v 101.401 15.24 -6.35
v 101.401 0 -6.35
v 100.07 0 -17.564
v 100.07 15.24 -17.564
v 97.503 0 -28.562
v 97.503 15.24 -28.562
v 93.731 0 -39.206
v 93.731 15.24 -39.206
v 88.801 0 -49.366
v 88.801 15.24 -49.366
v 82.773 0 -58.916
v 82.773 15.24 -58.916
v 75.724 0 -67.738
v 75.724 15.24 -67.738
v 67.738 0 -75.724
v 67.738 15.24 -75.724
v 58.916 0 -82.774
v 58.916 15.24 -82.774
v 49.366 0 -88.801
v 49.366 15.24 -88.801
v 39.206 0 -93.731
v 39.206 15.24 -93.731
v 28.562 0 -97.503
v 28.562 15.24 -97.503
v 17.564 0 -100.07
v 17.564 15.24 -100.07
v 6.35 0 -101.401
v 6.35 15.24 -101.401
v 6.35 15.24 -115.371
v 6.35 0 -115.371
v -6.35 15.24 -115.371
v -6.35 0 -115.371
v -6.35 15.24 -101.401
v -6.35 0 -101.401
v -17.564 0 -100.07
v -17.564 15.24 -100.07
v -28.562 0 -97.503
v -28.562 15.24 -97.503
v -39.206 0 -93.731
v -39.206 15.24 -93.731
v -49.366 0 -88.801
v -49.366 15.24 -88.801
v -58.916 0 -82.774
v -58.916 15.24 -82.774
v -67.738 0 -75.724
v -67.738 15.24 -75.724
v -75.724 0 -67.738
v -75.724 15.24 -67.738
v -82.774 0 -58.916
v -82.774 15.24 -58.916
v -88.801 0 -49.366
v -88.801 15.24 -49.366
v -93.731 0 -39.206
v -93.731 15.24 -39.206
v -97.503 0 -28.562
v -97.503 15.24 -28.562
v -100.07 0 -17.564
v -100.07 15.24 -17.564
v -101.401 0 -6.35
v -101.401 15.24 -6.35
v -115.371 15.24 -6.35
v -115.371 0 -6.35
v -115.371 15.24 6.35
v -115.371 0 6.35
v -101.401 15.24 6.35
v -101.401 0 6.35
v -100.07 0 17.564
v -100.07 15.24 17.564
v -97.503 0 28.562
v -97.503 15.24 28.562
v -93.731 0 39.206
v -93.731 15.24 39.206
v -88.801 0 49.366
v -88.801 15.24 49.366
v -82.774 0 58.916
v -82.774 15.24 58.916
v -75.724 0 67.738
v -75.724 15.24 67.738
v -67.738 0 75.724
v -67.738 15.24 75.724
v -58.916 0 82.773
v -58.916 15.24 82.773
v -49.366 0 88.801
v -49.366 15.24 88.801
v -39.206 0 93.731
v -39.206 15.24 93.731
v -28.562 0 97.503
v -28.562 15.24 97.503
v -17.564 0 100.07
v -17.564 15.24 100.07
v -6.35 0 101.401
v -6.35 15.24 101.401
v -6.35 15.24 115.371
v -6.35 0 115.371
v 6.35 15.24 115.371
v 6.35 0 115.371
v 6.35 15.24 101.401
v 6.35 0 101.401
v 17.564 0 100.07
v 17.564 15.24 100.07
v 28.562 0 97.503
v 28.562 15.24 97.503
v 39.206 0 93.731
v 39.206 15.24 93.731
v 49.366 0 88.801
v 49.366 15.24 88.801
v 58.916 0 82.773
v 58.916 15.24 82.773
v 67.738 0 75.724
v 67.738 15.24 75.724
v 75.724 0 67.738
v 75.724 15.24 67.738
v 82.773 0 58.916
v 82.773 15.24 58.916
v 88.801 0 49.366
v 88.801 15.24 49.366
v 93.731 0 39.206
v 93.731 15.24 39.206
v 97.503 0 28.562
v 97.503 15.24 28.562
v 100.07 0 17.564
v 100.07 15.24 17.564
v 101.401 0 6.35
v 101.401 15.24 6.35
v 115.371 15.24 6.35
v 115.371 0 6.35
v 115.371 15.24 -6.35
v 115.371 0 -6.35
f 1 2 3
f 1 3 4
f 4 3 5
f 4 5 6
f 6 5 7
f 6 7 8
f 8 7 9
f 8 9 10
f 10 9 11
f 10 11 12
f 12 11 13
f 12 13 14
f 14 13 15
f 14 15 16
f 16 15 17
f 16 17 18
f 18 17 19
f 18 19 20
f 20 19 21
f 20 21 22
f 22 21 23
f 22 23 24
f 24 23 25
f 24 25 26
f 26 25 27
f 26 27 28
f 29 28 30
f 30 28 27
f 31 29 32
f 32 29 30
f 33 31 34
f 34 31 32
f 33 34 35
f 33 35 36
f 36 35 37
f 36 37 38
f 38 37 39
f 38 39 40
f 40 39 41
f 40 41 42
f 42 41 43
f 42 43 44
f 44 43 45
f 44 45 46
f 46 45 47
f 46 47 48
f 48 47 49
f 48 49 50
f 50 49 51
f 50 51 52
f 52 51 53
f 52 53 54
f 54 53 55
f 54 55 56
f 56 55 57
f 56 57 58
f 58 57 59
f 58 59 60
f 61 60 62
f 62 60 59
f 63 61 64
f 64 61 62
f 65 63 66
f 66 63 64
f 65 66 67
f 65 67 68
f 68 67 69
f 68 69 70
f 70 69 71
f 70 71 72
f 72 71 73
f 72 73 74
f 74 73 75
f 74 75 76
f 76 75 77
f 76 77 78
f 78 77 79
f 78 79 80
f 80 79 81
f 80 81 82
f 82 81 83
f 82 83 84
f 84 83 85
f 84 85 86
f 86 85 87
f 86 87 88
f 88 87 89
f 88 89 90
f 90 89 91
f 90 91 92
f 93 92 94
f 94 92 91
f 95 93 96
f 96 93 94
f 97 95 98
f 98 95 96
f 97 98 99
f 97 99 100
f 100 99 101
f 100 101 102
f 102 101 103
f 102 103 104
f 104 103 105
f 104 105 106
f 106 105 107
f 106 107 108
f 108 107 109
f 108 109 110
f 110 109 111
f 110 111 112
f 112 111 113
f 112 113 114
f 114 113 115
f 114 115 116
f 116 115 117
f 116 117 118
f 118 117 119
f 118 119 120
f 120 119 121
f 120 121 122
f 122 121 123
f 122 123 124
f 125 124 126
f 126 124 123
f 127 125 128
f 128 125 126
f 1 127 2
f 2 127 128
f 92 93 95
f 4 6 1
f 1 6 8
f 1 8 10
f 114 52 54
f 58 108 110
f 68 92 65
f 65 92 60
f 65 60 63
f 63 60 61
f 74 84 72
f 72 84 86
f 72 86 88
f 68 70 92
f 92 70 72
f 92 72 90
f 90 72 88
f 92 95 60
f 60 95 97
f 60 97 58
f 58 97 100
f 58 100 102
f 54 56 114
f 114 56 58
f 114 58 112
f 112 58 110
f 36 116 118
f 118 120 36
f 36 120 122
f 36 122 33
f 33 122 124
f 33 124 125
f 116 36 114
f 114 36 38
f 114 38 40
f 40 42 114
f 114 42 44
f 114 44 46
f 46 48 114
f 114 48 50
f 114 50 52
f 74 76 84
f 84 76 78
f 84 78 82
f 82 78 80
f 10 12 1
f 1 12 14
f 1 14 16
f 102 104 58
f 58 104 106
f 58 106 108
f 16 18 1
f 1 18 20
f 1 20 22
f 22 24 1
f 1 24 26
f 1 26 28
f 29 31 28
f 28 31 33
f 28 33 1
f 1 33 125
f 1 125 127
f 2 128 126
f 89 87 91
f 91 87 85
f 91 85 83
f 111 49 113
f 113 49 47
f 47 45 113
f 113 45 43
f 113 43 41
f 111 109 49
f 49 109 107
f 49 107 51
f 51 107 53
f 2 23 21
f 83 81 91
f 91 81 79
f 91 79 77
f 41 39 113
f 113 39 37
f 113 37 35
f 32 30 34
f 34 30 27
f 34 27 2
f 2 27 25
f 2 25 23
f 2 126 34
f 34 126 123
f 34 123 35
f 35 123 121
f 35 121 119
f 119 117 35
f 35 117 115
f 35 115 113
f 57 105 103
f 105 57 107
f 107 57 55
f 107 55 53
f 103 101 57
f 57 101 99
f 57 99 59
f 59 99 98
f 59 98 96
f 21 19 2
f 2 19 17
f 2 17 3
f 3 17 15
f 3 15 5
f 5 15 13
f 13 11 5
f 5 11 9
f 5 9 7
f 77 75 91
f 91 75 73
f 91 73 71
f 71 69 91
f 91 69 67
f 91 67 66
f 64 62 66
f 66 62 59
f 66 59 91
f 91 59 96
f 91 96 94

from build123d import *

# Parameters (mm, degrees)
BOSS_EXTRUDE2_DEPTH = 15.24


with BuildPart() as part:
    # Sketch1 → Boss-Extrude2 (new body)
    with BuildSketch(Plane(origin=(0, 0, 0), x_dir=(1, 0, 0), z_dir=(0, 1, 0))):
        with BuildLine():
            Line((-6.35, 115.371368334), (6.35, 115.371368334))
            Line((6.35, 115.371368334), (6.35, 101.401368334))
            ThreePointArc((6.35, 101.401368334), (71.842048969, 71.842048969), (101.401368334, 6.35))
            Line((101.401368334, 6.35), (115.371368334, 6.35))
            Line((115.371368334, 6.35), (115.371368334, -3.175))
            Line((115.371368334, -3.175), (115.371368334, -6.35))
            Line((115.371368334, -6.35), (101.401368334, -6.35))
            ThreePointArc((101.401368334, -6.35), (71.842048969, -71.842048969), (6.35, -101.401368334))
            Line((6.35, -101.401368334), (6.35, -115.371368334))
            Line((6.35, -115.371368334), (-6.35, -115.371368334))
            Line((-6.35, -115.371368334), (-6.35, -101.401368334))
            ThreePointArc((-6.35, -101.401368334), (-71.842048969, -71.842048969), (-101.401368334, -6.35))
            Line((-101.401368334, -6.35), (-115.371368334, -6.35))
            Line((-115.371368334, -6.35), (-115.371368334, 6.35))
            Line((-115.371368334, 6.35), (-101.401368334, 6.35))
            ThreePointArc((-101.401368334, 6.35), (-71.842048969, 71.842048969), (-6.35, 101.401368334))
            Line((-6.35, 101.401368334), (-6.35, 115.371368334))
        make_face()
    extrude(amount=BOSS_EXTRUDE2_DEPTH)


solid = part.part
